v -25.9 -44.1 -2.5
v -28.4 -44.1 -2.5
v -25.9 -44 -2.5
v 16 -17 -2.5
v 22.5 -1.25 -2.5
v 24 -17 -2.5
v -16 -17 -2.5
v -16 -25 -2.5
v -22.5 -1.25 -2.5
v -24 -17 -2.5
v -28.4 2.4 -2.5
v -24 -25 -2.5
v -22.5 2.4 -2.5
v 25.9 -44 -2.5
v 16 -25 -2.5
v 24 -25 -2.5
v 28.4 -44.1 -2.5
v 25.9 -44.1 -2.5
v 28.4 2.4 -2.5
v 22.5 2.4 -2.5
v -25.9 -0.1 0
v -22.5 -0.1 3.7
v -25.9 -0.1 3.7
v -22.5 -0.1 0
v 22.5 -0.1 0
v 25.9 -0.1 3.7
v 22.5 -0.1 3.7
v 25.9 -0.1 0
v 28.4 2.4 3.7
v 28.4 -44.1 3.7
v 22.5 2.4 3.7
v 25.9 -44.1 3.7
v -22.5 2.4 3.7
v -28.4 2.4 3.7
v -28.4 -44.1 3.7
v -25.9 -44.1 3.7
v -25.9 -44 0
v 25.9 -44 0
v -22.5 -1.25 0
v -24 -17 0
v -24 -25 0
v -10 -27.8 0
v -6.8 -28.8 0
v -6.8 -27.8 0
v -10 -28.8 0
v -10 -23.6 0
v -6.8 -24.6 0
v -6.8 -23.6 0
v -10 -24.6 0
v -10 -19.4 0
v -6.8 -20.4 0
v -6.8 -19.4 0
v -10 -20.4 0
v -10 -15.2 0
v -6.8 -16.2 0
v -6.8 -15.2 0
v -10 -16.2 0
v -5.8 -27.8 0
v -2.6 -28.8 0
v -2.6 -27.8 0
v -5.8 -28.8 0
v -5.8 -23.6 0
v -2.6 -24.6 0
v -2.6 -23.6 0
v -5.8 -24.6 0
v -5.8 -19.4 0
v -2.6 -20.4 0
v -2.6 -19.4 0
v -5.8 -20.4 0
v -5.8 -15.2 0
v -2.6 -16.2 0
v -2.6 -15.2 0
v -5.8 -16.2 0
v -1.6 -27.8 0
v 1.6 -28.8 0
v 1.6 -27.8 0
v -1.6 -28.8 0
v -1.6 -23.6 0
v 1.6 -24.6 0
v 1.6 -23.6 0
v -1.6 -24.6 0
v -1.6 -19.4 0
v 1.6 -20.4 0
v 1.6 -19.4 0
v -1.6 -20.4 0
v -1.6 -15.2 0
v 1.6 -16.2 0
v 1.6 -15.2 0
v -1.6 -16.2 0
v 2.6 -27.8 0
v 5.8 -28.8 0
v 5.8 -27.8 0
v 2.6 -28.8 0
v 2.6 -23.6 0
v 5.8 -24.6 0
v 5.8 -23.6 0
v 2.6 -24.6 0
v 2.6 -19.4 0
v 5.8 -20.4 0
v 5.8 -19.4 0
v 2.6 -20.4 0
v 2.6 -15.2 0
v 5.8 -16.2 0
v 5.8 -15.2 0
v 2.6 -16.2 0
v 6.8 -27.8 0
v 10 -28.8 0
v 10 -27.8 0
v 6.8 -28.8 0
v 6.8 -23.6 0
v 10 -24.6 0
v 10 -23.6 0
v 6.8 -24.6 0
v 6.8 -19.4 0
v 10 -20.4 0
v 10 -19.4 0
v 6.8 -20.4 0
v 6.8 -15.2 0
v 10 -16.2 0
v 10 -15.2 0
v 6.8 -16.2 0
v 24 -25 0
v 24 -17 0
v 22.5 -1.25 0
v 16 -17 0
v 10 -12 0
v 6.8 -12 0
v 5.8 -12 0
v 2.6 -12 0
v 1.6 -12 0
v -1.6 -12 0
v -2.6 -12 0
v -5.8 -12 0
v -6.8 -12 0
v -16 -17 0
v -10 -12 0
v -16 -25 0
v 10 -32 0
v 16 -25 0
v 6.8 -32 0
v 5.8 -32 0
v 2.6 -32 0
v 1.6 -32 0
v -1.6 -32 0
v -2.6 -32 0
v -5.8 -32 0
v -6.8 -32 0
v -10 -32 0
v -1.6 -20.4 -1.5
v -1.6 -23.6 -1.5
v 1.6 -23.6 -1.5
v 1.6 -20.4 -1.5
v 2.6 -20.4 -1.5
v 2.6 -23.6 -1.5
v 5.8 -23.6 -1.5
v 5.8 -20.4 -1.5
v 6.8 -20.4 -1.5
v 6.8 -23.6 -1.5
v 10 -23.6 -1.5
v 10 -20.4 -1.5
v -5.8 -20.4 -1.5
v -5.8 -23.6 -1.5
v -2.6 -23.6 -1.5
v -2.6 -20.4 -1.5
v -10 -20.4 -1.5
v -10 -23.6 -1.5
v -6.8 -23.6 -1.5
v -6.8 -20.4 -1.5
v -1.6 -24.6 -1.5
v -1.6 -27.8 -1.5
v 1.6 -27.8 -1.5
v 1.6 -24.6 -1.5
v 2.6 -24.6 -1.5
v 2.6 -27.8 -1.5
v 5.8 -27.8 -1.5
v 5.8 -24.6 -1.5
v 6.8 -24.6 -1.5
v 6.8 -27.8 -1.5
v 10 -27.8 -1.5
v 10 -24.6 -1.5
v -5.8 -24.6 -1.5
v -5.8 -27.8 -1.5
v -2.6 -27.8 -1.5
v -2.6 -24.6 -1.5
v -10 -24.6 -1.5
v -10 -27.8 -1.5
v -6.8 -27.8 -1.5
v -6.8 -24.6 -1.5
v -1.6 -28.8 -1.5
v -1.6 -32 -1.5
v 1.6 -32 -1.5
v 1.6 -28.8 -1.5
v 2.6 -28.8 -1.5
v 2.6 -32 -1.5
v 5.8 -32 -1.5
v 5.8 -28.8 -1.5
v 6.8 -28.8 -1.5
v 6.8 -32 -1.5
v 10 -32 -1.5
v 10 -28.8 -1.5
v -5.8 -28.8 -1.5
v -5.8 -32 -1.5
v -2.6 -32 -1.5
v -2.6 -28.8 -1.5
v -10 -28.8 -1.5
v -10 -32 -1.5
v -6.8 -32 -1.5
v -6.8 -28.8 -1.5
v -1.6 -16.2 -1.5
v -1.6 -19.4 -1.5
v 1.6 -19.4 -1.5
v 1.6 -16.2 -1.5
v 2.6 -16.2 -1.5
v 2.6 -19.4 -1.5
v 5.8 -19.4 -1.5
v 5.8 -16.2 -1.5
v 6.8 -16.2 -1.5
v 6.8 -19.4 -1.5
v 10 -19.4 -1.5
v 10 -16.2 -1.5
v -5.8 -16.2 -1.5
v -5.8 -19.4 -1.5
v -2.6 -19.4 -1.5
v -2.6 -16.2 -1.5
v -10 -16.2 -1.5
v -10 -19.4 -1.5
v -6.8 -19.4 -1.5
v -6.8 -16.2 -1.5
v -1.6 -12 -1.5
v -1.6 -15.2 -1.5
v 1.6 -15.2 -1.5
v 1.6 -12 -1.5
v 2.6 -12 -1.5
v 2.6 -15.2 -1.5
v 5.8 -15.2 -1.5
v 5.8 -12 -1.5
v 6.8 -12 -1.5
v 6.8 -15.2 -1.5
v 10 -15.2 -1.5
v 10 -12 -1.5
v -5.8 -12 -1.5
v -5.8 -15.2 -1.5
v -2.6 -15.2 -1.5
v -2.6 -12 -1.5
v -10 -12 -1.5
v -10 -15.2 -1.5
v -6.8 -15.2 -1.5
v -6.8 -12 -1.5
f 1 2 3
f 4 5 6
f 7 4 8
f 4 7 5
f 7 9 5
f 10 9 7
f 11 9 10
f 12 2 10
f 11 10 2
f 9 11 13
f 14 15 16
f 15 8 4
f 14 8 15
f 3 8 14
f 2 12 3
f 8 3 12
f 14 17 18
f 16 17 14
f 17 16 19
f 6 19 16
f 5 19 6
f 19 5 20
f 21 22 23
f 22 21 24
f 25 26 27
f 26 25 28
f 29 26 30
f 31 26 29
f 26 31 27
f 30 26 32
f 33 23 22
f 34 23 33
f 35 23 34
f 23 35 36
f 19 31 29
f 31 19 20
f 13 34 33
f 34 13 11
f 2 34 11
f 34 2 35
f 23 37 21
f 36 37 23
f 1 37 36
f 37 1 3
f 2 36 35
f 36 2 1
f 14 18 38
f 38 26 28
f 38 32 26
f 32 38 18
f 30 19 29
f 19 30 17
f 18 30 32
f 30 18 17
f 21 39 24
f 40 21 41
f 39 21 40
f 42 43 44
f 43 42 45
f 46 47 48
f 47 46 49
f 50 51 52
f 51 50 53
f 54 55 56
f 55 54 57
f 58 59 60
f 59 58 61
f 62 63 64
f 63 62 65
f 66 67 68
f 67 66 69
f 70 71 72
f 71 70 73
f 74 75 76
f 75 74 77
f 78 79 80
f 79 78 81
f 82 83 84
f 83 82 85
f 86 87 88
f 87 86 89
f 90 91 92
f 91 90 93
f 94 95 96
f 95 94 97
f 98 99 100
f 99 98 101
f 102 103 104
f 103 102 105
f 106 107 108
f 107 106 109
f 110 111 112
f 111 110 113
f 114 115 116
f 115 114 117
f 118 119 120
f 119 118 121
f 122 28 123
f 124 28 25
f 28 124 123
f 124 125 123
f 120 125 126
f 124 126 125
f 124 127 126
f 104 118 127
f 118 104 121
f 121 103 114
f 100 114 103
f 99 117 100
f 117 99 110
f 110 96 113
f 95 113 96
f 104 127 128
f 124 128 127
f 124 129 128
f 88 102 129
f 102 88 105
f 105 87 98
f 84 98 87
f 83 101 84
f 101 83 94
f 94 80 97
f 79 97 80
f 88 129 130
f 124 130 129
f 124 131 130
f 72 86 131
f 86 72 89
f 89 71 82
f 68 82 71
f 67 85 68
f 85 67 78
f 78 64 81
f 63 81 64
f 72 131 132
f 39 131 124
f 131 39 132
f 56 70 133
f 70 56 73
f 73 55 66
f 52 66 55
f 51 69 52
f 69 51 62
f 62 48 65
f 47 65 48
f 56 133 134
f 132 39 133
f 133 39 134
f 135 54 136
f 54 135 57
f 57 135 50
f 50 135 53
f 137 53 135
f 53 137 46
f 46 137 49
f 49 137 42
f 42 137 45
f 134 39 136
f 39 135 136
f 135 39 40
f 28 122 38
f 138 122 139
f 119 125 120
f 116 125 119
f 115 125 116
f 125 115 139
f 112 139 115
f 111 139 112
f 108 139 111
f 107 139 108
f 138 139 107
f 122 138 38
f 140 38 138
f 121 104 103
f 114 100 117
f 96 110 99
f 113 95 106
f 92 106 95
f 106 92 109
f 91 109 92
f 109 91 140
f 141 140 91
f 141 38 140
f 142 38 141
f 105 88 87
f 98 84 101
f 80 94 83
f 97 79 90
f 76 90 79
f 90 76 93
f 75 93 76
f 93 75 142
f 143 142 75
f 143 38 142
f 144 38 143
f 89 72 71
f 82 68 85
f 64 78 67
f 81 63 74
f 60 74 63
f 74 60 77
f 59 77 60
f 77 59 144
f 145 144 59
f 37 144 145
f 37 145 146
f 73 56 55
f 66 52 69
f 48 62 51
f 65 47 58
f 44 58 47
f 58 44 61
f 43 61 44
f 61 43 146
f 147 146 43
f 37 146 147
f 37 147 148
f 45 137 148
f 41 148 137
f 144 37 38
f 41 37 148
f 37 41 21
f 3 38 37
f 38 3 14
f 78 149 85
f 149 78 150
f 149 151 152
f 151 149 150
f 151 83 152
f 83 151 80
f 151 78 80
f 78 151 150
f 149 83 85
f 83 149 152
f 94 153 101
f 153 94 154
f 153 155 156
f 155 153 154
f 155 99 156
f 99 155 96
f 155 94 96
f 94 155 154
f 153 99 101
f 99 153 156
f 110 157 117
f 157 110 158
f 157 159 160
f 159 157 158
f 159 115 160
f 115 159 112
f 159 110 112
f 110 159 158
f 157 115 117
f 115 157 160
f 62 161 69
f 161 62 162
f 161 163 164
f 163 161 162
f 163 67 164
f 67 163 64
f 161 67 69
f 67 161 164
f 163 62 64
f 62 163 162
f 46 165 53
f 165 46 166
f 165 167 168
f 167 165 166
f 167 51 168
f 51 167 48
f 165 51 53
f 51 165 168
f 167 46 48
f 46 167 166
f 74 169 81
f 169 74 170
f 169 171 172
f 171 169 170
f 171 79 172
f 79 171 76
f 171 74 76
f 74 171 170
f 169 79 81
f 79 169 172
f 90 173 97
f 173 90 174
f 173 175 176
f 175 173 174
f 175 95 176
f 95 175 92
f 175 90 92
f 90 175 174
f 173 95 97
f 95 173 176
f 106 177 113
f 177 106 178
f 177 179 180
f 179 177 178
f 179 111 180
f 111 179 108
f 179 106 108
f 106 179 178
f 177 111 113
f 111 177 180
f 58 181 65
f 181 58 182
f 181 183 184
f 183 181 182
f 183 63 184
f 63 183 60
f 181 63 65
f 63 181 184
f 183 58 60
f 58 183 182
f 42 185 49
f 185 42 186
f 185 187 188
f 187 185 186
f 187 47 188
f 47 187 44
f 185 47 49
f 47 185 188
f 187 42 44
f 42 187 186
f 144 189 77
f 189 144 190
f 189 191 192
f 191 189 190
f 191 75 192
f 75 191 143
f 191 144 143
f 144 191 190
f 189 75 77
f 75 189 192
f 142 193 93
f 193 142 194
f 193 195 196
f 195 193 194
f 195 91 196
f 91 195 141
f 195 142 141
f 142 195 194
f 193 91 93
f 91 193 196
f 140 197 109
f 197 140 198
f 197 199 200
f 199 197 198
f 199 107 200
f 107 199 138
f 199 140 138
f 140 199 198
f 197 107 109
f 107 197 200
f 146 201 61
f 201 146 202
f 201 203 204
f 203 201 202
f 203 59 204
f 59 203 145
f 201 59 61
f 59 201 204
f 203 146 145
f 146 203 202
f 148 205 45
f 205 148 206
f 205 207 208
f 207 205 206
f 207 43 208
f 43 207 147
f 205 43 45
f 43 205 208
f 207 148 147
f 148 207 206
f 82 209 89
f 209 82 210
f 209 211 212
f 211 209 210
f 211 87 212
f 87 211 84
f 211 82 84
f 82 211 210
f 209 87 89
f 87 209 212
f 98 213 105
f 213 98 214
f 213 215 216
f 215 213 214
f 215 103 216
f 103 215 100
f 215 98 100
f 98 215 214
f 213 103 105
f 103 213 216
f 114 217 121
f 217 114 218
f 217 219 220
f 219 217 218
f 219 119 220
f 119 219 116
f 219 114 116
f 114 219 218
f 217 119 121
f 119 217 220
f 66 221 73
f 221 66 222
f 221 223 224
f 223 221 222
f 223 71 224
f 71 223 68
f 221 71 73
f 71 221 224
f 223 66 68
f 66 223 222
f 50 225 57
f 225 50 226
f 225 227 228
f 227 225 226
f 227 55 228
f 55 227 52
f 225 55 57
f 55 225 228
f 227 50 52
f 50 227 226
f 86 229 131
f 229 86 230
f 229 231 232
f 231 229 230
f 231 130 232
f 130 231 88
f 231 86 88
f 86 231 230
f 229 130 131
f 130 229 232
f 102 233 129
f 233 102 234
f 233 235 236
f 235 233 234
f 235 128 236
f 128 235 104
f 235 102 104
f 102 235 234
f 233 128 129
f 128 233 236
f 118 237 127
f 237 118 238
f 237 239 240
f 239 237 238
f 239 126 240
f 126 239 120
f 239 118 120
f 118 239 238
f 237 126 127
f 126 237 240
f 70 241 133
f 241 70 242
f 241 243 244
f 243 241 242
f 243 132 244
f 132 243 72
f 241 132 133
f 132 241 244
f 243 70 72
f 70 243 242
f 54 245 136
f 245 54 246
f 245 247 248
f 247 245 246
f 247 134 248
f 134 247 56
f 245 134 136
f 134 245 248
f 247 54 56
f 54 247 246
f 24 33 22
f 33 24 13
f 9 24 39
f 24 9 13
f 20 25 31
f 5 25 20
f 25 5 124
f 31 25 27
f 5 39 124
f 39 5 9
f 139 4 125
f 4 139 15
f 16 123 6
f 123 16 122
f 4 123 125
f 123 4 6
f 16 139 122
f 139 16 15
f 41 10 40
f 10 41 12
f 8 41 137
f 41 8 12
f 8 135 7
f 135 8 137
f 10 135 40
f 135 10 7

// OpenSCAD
//!OpenSCAD
// 2018-10-08 modified the "microbit diffuser" below to make the pixels more distinct -Brad

// The Microbit is a cool new thing from eth BBC.
// It runs micropython.

// I wrote a flame simulator on it and this panel fits on top
// So you can adjust the parameters with the buttons and// see a diffuse fire display through the plastic shell



board_w = 52;    // Width of the Microbit
board_h = 44;    // Height of the Microbit
board_d = 1.7;   // Thickness of the circuit board
standoff = 2;    // How far off does the fire_place stand from the board
thickness = 2.5; // Thickness of the 3D print in general.
//
fire_pane_w = 22;    // Height of the display LEDs
fire_pane_h = 22;    // Width of the display LEDs
fire_pane_off = 10;  // Distance from base to bottom of display recess
fire_pane_d = 1;   // Thin section over the LEDs to diffuse them.
fire_cell_w = 3.2; // width of each cell w = 5*w + 4*s
fire_cell_off = 1; // distance between cells
//
button_off_w = 4;   // Offset of buttons from side
button_off_h = 17;  // Offset of buttons from base of Microbit
button_w = 8;       // Width of buttons
//
usb_w = 45;     // width of recess for the USB plug (15)


Delta = 0.1; // used to make sure things overlap properly for a nice 3D model

//--------------------------------------------------------------------------
// The base plate or panel
module plate() {
	translate([0,board_h/2,thickness/2])
		cube(size=[board_w,board_h, thickness], center=true);
}

// hole for a button (mirrored for other side)
module button() {
	translate([(board_w-button_off_w-button_w)/2, button_off_h+button_w/2,0])
		cube(size=[button_w,button_w,button_w], center=true);
}

// Recess for USB plug
module usb() {
	h = board_d+standoff+thickness+Delta*2;
	translate([0,-thickness/2,-thickness-Delta])
		cube([usb_w,thickness*2,h*2],center=true);
}

// Little standoffs to seat board height properly
module standoff() {
	translate([(board_w-button_off_w-button_w)/2, board_h-button_off_h, Delta-standoff/2])
		cube([standoff,standoff,standoff], center=true);
	translate([(board_w-button_off_w-button_w)/2, thickness, Delta-standoff/2])
		cube([standoff,standoff,standoff], center=true);
}

// Sides and bottom lip
module sides() {
	h = board_d+standoff+thickness;
	// bottom
	translate([0,-thickness/2+Delta, thickness-h/2])
		cube([board_w, thickness, h ], center=true);
	// side 1
	translate([-(thickness+board_w)/2+Delta,(board_h-thickness)/2+Delta, thickness-h/2])
		cube([thickness, board_h+thickness, h ], center=true);
	// side 2
	translate([(thickness+board_w)/2-Delta,(board_h-thickness)/2+Delta, thickness-h/2])
		cube([thickness, board_h+thickness, h ], center=true);
}

module button_row() {
		translate([0,fire_pane_h,thickness/2-fire_pane_d])
			cube([fire_cell_w,fire_cell_w,thickness], center=true);
		translate([fire_cell_w + fire_cell_off,fire_pane_h,thickness/2-fire_pane_d])
			cube([fire_cell_w,fire_cell_w,thickness], center=true);
		translate([2*fire_cell_w + 2*fire_cell_off,fire_pane_h,thickness/2-fire_pane_d])
			cube([fire_cell_w,fire_cell_w,thickness], center=true);
		translate([-fire_cell_w - fire_cell_off,fire_pane_h,thickness/2-fire_pane_d])
			cube([fire_cell_w,fire_cell_w,thickness], center=true);
		translate([-2 * fire_cell_w - 2* fire_cell_off,fire_pane_h,thickness/2-fire_pane_d])
			cube([fire_cell_w,fire_cell_w,thickness], center=true);
    
}
//The entire object made of parts
module fire_place() {
	difference() {
		// baseplate and sides
		union() {
			plate();
			sides();
		}
		// subtracting USB, buttons, LED region
		usb();
		button();
		mirror([1,0,0])
			button();
		// flame region
		translate([0, 0, 0]) button_row();
		translate([0, fire_cell_w + fire_cell_off, 0]) button_row();
		translate([0, 2*(fire_cell_w + fire_cell_off), 0]) button_row();
		translate([0, -1*(fire_cell_w + fire_cell_off), 0]) button_row();
		translate([0, -2*(fire_cell_w + fire_cell_off), 0]) button_row();
	}
	// Add standoffs
	//standoff();
	//mirror([1,0,0]) standoff();
	// Some measures to make sure its all working right :)
	// color([1,0,0])
		// cube([32,1,1], center=true);
	// color([1,0,0])
	// translate([board_w/2,button_off_h/2,3])
		// cube([1,button_off_h,1], center=true);
}

// Make it upside down so can be printed easily.
rotate([180,0,0])
	fire_place();
